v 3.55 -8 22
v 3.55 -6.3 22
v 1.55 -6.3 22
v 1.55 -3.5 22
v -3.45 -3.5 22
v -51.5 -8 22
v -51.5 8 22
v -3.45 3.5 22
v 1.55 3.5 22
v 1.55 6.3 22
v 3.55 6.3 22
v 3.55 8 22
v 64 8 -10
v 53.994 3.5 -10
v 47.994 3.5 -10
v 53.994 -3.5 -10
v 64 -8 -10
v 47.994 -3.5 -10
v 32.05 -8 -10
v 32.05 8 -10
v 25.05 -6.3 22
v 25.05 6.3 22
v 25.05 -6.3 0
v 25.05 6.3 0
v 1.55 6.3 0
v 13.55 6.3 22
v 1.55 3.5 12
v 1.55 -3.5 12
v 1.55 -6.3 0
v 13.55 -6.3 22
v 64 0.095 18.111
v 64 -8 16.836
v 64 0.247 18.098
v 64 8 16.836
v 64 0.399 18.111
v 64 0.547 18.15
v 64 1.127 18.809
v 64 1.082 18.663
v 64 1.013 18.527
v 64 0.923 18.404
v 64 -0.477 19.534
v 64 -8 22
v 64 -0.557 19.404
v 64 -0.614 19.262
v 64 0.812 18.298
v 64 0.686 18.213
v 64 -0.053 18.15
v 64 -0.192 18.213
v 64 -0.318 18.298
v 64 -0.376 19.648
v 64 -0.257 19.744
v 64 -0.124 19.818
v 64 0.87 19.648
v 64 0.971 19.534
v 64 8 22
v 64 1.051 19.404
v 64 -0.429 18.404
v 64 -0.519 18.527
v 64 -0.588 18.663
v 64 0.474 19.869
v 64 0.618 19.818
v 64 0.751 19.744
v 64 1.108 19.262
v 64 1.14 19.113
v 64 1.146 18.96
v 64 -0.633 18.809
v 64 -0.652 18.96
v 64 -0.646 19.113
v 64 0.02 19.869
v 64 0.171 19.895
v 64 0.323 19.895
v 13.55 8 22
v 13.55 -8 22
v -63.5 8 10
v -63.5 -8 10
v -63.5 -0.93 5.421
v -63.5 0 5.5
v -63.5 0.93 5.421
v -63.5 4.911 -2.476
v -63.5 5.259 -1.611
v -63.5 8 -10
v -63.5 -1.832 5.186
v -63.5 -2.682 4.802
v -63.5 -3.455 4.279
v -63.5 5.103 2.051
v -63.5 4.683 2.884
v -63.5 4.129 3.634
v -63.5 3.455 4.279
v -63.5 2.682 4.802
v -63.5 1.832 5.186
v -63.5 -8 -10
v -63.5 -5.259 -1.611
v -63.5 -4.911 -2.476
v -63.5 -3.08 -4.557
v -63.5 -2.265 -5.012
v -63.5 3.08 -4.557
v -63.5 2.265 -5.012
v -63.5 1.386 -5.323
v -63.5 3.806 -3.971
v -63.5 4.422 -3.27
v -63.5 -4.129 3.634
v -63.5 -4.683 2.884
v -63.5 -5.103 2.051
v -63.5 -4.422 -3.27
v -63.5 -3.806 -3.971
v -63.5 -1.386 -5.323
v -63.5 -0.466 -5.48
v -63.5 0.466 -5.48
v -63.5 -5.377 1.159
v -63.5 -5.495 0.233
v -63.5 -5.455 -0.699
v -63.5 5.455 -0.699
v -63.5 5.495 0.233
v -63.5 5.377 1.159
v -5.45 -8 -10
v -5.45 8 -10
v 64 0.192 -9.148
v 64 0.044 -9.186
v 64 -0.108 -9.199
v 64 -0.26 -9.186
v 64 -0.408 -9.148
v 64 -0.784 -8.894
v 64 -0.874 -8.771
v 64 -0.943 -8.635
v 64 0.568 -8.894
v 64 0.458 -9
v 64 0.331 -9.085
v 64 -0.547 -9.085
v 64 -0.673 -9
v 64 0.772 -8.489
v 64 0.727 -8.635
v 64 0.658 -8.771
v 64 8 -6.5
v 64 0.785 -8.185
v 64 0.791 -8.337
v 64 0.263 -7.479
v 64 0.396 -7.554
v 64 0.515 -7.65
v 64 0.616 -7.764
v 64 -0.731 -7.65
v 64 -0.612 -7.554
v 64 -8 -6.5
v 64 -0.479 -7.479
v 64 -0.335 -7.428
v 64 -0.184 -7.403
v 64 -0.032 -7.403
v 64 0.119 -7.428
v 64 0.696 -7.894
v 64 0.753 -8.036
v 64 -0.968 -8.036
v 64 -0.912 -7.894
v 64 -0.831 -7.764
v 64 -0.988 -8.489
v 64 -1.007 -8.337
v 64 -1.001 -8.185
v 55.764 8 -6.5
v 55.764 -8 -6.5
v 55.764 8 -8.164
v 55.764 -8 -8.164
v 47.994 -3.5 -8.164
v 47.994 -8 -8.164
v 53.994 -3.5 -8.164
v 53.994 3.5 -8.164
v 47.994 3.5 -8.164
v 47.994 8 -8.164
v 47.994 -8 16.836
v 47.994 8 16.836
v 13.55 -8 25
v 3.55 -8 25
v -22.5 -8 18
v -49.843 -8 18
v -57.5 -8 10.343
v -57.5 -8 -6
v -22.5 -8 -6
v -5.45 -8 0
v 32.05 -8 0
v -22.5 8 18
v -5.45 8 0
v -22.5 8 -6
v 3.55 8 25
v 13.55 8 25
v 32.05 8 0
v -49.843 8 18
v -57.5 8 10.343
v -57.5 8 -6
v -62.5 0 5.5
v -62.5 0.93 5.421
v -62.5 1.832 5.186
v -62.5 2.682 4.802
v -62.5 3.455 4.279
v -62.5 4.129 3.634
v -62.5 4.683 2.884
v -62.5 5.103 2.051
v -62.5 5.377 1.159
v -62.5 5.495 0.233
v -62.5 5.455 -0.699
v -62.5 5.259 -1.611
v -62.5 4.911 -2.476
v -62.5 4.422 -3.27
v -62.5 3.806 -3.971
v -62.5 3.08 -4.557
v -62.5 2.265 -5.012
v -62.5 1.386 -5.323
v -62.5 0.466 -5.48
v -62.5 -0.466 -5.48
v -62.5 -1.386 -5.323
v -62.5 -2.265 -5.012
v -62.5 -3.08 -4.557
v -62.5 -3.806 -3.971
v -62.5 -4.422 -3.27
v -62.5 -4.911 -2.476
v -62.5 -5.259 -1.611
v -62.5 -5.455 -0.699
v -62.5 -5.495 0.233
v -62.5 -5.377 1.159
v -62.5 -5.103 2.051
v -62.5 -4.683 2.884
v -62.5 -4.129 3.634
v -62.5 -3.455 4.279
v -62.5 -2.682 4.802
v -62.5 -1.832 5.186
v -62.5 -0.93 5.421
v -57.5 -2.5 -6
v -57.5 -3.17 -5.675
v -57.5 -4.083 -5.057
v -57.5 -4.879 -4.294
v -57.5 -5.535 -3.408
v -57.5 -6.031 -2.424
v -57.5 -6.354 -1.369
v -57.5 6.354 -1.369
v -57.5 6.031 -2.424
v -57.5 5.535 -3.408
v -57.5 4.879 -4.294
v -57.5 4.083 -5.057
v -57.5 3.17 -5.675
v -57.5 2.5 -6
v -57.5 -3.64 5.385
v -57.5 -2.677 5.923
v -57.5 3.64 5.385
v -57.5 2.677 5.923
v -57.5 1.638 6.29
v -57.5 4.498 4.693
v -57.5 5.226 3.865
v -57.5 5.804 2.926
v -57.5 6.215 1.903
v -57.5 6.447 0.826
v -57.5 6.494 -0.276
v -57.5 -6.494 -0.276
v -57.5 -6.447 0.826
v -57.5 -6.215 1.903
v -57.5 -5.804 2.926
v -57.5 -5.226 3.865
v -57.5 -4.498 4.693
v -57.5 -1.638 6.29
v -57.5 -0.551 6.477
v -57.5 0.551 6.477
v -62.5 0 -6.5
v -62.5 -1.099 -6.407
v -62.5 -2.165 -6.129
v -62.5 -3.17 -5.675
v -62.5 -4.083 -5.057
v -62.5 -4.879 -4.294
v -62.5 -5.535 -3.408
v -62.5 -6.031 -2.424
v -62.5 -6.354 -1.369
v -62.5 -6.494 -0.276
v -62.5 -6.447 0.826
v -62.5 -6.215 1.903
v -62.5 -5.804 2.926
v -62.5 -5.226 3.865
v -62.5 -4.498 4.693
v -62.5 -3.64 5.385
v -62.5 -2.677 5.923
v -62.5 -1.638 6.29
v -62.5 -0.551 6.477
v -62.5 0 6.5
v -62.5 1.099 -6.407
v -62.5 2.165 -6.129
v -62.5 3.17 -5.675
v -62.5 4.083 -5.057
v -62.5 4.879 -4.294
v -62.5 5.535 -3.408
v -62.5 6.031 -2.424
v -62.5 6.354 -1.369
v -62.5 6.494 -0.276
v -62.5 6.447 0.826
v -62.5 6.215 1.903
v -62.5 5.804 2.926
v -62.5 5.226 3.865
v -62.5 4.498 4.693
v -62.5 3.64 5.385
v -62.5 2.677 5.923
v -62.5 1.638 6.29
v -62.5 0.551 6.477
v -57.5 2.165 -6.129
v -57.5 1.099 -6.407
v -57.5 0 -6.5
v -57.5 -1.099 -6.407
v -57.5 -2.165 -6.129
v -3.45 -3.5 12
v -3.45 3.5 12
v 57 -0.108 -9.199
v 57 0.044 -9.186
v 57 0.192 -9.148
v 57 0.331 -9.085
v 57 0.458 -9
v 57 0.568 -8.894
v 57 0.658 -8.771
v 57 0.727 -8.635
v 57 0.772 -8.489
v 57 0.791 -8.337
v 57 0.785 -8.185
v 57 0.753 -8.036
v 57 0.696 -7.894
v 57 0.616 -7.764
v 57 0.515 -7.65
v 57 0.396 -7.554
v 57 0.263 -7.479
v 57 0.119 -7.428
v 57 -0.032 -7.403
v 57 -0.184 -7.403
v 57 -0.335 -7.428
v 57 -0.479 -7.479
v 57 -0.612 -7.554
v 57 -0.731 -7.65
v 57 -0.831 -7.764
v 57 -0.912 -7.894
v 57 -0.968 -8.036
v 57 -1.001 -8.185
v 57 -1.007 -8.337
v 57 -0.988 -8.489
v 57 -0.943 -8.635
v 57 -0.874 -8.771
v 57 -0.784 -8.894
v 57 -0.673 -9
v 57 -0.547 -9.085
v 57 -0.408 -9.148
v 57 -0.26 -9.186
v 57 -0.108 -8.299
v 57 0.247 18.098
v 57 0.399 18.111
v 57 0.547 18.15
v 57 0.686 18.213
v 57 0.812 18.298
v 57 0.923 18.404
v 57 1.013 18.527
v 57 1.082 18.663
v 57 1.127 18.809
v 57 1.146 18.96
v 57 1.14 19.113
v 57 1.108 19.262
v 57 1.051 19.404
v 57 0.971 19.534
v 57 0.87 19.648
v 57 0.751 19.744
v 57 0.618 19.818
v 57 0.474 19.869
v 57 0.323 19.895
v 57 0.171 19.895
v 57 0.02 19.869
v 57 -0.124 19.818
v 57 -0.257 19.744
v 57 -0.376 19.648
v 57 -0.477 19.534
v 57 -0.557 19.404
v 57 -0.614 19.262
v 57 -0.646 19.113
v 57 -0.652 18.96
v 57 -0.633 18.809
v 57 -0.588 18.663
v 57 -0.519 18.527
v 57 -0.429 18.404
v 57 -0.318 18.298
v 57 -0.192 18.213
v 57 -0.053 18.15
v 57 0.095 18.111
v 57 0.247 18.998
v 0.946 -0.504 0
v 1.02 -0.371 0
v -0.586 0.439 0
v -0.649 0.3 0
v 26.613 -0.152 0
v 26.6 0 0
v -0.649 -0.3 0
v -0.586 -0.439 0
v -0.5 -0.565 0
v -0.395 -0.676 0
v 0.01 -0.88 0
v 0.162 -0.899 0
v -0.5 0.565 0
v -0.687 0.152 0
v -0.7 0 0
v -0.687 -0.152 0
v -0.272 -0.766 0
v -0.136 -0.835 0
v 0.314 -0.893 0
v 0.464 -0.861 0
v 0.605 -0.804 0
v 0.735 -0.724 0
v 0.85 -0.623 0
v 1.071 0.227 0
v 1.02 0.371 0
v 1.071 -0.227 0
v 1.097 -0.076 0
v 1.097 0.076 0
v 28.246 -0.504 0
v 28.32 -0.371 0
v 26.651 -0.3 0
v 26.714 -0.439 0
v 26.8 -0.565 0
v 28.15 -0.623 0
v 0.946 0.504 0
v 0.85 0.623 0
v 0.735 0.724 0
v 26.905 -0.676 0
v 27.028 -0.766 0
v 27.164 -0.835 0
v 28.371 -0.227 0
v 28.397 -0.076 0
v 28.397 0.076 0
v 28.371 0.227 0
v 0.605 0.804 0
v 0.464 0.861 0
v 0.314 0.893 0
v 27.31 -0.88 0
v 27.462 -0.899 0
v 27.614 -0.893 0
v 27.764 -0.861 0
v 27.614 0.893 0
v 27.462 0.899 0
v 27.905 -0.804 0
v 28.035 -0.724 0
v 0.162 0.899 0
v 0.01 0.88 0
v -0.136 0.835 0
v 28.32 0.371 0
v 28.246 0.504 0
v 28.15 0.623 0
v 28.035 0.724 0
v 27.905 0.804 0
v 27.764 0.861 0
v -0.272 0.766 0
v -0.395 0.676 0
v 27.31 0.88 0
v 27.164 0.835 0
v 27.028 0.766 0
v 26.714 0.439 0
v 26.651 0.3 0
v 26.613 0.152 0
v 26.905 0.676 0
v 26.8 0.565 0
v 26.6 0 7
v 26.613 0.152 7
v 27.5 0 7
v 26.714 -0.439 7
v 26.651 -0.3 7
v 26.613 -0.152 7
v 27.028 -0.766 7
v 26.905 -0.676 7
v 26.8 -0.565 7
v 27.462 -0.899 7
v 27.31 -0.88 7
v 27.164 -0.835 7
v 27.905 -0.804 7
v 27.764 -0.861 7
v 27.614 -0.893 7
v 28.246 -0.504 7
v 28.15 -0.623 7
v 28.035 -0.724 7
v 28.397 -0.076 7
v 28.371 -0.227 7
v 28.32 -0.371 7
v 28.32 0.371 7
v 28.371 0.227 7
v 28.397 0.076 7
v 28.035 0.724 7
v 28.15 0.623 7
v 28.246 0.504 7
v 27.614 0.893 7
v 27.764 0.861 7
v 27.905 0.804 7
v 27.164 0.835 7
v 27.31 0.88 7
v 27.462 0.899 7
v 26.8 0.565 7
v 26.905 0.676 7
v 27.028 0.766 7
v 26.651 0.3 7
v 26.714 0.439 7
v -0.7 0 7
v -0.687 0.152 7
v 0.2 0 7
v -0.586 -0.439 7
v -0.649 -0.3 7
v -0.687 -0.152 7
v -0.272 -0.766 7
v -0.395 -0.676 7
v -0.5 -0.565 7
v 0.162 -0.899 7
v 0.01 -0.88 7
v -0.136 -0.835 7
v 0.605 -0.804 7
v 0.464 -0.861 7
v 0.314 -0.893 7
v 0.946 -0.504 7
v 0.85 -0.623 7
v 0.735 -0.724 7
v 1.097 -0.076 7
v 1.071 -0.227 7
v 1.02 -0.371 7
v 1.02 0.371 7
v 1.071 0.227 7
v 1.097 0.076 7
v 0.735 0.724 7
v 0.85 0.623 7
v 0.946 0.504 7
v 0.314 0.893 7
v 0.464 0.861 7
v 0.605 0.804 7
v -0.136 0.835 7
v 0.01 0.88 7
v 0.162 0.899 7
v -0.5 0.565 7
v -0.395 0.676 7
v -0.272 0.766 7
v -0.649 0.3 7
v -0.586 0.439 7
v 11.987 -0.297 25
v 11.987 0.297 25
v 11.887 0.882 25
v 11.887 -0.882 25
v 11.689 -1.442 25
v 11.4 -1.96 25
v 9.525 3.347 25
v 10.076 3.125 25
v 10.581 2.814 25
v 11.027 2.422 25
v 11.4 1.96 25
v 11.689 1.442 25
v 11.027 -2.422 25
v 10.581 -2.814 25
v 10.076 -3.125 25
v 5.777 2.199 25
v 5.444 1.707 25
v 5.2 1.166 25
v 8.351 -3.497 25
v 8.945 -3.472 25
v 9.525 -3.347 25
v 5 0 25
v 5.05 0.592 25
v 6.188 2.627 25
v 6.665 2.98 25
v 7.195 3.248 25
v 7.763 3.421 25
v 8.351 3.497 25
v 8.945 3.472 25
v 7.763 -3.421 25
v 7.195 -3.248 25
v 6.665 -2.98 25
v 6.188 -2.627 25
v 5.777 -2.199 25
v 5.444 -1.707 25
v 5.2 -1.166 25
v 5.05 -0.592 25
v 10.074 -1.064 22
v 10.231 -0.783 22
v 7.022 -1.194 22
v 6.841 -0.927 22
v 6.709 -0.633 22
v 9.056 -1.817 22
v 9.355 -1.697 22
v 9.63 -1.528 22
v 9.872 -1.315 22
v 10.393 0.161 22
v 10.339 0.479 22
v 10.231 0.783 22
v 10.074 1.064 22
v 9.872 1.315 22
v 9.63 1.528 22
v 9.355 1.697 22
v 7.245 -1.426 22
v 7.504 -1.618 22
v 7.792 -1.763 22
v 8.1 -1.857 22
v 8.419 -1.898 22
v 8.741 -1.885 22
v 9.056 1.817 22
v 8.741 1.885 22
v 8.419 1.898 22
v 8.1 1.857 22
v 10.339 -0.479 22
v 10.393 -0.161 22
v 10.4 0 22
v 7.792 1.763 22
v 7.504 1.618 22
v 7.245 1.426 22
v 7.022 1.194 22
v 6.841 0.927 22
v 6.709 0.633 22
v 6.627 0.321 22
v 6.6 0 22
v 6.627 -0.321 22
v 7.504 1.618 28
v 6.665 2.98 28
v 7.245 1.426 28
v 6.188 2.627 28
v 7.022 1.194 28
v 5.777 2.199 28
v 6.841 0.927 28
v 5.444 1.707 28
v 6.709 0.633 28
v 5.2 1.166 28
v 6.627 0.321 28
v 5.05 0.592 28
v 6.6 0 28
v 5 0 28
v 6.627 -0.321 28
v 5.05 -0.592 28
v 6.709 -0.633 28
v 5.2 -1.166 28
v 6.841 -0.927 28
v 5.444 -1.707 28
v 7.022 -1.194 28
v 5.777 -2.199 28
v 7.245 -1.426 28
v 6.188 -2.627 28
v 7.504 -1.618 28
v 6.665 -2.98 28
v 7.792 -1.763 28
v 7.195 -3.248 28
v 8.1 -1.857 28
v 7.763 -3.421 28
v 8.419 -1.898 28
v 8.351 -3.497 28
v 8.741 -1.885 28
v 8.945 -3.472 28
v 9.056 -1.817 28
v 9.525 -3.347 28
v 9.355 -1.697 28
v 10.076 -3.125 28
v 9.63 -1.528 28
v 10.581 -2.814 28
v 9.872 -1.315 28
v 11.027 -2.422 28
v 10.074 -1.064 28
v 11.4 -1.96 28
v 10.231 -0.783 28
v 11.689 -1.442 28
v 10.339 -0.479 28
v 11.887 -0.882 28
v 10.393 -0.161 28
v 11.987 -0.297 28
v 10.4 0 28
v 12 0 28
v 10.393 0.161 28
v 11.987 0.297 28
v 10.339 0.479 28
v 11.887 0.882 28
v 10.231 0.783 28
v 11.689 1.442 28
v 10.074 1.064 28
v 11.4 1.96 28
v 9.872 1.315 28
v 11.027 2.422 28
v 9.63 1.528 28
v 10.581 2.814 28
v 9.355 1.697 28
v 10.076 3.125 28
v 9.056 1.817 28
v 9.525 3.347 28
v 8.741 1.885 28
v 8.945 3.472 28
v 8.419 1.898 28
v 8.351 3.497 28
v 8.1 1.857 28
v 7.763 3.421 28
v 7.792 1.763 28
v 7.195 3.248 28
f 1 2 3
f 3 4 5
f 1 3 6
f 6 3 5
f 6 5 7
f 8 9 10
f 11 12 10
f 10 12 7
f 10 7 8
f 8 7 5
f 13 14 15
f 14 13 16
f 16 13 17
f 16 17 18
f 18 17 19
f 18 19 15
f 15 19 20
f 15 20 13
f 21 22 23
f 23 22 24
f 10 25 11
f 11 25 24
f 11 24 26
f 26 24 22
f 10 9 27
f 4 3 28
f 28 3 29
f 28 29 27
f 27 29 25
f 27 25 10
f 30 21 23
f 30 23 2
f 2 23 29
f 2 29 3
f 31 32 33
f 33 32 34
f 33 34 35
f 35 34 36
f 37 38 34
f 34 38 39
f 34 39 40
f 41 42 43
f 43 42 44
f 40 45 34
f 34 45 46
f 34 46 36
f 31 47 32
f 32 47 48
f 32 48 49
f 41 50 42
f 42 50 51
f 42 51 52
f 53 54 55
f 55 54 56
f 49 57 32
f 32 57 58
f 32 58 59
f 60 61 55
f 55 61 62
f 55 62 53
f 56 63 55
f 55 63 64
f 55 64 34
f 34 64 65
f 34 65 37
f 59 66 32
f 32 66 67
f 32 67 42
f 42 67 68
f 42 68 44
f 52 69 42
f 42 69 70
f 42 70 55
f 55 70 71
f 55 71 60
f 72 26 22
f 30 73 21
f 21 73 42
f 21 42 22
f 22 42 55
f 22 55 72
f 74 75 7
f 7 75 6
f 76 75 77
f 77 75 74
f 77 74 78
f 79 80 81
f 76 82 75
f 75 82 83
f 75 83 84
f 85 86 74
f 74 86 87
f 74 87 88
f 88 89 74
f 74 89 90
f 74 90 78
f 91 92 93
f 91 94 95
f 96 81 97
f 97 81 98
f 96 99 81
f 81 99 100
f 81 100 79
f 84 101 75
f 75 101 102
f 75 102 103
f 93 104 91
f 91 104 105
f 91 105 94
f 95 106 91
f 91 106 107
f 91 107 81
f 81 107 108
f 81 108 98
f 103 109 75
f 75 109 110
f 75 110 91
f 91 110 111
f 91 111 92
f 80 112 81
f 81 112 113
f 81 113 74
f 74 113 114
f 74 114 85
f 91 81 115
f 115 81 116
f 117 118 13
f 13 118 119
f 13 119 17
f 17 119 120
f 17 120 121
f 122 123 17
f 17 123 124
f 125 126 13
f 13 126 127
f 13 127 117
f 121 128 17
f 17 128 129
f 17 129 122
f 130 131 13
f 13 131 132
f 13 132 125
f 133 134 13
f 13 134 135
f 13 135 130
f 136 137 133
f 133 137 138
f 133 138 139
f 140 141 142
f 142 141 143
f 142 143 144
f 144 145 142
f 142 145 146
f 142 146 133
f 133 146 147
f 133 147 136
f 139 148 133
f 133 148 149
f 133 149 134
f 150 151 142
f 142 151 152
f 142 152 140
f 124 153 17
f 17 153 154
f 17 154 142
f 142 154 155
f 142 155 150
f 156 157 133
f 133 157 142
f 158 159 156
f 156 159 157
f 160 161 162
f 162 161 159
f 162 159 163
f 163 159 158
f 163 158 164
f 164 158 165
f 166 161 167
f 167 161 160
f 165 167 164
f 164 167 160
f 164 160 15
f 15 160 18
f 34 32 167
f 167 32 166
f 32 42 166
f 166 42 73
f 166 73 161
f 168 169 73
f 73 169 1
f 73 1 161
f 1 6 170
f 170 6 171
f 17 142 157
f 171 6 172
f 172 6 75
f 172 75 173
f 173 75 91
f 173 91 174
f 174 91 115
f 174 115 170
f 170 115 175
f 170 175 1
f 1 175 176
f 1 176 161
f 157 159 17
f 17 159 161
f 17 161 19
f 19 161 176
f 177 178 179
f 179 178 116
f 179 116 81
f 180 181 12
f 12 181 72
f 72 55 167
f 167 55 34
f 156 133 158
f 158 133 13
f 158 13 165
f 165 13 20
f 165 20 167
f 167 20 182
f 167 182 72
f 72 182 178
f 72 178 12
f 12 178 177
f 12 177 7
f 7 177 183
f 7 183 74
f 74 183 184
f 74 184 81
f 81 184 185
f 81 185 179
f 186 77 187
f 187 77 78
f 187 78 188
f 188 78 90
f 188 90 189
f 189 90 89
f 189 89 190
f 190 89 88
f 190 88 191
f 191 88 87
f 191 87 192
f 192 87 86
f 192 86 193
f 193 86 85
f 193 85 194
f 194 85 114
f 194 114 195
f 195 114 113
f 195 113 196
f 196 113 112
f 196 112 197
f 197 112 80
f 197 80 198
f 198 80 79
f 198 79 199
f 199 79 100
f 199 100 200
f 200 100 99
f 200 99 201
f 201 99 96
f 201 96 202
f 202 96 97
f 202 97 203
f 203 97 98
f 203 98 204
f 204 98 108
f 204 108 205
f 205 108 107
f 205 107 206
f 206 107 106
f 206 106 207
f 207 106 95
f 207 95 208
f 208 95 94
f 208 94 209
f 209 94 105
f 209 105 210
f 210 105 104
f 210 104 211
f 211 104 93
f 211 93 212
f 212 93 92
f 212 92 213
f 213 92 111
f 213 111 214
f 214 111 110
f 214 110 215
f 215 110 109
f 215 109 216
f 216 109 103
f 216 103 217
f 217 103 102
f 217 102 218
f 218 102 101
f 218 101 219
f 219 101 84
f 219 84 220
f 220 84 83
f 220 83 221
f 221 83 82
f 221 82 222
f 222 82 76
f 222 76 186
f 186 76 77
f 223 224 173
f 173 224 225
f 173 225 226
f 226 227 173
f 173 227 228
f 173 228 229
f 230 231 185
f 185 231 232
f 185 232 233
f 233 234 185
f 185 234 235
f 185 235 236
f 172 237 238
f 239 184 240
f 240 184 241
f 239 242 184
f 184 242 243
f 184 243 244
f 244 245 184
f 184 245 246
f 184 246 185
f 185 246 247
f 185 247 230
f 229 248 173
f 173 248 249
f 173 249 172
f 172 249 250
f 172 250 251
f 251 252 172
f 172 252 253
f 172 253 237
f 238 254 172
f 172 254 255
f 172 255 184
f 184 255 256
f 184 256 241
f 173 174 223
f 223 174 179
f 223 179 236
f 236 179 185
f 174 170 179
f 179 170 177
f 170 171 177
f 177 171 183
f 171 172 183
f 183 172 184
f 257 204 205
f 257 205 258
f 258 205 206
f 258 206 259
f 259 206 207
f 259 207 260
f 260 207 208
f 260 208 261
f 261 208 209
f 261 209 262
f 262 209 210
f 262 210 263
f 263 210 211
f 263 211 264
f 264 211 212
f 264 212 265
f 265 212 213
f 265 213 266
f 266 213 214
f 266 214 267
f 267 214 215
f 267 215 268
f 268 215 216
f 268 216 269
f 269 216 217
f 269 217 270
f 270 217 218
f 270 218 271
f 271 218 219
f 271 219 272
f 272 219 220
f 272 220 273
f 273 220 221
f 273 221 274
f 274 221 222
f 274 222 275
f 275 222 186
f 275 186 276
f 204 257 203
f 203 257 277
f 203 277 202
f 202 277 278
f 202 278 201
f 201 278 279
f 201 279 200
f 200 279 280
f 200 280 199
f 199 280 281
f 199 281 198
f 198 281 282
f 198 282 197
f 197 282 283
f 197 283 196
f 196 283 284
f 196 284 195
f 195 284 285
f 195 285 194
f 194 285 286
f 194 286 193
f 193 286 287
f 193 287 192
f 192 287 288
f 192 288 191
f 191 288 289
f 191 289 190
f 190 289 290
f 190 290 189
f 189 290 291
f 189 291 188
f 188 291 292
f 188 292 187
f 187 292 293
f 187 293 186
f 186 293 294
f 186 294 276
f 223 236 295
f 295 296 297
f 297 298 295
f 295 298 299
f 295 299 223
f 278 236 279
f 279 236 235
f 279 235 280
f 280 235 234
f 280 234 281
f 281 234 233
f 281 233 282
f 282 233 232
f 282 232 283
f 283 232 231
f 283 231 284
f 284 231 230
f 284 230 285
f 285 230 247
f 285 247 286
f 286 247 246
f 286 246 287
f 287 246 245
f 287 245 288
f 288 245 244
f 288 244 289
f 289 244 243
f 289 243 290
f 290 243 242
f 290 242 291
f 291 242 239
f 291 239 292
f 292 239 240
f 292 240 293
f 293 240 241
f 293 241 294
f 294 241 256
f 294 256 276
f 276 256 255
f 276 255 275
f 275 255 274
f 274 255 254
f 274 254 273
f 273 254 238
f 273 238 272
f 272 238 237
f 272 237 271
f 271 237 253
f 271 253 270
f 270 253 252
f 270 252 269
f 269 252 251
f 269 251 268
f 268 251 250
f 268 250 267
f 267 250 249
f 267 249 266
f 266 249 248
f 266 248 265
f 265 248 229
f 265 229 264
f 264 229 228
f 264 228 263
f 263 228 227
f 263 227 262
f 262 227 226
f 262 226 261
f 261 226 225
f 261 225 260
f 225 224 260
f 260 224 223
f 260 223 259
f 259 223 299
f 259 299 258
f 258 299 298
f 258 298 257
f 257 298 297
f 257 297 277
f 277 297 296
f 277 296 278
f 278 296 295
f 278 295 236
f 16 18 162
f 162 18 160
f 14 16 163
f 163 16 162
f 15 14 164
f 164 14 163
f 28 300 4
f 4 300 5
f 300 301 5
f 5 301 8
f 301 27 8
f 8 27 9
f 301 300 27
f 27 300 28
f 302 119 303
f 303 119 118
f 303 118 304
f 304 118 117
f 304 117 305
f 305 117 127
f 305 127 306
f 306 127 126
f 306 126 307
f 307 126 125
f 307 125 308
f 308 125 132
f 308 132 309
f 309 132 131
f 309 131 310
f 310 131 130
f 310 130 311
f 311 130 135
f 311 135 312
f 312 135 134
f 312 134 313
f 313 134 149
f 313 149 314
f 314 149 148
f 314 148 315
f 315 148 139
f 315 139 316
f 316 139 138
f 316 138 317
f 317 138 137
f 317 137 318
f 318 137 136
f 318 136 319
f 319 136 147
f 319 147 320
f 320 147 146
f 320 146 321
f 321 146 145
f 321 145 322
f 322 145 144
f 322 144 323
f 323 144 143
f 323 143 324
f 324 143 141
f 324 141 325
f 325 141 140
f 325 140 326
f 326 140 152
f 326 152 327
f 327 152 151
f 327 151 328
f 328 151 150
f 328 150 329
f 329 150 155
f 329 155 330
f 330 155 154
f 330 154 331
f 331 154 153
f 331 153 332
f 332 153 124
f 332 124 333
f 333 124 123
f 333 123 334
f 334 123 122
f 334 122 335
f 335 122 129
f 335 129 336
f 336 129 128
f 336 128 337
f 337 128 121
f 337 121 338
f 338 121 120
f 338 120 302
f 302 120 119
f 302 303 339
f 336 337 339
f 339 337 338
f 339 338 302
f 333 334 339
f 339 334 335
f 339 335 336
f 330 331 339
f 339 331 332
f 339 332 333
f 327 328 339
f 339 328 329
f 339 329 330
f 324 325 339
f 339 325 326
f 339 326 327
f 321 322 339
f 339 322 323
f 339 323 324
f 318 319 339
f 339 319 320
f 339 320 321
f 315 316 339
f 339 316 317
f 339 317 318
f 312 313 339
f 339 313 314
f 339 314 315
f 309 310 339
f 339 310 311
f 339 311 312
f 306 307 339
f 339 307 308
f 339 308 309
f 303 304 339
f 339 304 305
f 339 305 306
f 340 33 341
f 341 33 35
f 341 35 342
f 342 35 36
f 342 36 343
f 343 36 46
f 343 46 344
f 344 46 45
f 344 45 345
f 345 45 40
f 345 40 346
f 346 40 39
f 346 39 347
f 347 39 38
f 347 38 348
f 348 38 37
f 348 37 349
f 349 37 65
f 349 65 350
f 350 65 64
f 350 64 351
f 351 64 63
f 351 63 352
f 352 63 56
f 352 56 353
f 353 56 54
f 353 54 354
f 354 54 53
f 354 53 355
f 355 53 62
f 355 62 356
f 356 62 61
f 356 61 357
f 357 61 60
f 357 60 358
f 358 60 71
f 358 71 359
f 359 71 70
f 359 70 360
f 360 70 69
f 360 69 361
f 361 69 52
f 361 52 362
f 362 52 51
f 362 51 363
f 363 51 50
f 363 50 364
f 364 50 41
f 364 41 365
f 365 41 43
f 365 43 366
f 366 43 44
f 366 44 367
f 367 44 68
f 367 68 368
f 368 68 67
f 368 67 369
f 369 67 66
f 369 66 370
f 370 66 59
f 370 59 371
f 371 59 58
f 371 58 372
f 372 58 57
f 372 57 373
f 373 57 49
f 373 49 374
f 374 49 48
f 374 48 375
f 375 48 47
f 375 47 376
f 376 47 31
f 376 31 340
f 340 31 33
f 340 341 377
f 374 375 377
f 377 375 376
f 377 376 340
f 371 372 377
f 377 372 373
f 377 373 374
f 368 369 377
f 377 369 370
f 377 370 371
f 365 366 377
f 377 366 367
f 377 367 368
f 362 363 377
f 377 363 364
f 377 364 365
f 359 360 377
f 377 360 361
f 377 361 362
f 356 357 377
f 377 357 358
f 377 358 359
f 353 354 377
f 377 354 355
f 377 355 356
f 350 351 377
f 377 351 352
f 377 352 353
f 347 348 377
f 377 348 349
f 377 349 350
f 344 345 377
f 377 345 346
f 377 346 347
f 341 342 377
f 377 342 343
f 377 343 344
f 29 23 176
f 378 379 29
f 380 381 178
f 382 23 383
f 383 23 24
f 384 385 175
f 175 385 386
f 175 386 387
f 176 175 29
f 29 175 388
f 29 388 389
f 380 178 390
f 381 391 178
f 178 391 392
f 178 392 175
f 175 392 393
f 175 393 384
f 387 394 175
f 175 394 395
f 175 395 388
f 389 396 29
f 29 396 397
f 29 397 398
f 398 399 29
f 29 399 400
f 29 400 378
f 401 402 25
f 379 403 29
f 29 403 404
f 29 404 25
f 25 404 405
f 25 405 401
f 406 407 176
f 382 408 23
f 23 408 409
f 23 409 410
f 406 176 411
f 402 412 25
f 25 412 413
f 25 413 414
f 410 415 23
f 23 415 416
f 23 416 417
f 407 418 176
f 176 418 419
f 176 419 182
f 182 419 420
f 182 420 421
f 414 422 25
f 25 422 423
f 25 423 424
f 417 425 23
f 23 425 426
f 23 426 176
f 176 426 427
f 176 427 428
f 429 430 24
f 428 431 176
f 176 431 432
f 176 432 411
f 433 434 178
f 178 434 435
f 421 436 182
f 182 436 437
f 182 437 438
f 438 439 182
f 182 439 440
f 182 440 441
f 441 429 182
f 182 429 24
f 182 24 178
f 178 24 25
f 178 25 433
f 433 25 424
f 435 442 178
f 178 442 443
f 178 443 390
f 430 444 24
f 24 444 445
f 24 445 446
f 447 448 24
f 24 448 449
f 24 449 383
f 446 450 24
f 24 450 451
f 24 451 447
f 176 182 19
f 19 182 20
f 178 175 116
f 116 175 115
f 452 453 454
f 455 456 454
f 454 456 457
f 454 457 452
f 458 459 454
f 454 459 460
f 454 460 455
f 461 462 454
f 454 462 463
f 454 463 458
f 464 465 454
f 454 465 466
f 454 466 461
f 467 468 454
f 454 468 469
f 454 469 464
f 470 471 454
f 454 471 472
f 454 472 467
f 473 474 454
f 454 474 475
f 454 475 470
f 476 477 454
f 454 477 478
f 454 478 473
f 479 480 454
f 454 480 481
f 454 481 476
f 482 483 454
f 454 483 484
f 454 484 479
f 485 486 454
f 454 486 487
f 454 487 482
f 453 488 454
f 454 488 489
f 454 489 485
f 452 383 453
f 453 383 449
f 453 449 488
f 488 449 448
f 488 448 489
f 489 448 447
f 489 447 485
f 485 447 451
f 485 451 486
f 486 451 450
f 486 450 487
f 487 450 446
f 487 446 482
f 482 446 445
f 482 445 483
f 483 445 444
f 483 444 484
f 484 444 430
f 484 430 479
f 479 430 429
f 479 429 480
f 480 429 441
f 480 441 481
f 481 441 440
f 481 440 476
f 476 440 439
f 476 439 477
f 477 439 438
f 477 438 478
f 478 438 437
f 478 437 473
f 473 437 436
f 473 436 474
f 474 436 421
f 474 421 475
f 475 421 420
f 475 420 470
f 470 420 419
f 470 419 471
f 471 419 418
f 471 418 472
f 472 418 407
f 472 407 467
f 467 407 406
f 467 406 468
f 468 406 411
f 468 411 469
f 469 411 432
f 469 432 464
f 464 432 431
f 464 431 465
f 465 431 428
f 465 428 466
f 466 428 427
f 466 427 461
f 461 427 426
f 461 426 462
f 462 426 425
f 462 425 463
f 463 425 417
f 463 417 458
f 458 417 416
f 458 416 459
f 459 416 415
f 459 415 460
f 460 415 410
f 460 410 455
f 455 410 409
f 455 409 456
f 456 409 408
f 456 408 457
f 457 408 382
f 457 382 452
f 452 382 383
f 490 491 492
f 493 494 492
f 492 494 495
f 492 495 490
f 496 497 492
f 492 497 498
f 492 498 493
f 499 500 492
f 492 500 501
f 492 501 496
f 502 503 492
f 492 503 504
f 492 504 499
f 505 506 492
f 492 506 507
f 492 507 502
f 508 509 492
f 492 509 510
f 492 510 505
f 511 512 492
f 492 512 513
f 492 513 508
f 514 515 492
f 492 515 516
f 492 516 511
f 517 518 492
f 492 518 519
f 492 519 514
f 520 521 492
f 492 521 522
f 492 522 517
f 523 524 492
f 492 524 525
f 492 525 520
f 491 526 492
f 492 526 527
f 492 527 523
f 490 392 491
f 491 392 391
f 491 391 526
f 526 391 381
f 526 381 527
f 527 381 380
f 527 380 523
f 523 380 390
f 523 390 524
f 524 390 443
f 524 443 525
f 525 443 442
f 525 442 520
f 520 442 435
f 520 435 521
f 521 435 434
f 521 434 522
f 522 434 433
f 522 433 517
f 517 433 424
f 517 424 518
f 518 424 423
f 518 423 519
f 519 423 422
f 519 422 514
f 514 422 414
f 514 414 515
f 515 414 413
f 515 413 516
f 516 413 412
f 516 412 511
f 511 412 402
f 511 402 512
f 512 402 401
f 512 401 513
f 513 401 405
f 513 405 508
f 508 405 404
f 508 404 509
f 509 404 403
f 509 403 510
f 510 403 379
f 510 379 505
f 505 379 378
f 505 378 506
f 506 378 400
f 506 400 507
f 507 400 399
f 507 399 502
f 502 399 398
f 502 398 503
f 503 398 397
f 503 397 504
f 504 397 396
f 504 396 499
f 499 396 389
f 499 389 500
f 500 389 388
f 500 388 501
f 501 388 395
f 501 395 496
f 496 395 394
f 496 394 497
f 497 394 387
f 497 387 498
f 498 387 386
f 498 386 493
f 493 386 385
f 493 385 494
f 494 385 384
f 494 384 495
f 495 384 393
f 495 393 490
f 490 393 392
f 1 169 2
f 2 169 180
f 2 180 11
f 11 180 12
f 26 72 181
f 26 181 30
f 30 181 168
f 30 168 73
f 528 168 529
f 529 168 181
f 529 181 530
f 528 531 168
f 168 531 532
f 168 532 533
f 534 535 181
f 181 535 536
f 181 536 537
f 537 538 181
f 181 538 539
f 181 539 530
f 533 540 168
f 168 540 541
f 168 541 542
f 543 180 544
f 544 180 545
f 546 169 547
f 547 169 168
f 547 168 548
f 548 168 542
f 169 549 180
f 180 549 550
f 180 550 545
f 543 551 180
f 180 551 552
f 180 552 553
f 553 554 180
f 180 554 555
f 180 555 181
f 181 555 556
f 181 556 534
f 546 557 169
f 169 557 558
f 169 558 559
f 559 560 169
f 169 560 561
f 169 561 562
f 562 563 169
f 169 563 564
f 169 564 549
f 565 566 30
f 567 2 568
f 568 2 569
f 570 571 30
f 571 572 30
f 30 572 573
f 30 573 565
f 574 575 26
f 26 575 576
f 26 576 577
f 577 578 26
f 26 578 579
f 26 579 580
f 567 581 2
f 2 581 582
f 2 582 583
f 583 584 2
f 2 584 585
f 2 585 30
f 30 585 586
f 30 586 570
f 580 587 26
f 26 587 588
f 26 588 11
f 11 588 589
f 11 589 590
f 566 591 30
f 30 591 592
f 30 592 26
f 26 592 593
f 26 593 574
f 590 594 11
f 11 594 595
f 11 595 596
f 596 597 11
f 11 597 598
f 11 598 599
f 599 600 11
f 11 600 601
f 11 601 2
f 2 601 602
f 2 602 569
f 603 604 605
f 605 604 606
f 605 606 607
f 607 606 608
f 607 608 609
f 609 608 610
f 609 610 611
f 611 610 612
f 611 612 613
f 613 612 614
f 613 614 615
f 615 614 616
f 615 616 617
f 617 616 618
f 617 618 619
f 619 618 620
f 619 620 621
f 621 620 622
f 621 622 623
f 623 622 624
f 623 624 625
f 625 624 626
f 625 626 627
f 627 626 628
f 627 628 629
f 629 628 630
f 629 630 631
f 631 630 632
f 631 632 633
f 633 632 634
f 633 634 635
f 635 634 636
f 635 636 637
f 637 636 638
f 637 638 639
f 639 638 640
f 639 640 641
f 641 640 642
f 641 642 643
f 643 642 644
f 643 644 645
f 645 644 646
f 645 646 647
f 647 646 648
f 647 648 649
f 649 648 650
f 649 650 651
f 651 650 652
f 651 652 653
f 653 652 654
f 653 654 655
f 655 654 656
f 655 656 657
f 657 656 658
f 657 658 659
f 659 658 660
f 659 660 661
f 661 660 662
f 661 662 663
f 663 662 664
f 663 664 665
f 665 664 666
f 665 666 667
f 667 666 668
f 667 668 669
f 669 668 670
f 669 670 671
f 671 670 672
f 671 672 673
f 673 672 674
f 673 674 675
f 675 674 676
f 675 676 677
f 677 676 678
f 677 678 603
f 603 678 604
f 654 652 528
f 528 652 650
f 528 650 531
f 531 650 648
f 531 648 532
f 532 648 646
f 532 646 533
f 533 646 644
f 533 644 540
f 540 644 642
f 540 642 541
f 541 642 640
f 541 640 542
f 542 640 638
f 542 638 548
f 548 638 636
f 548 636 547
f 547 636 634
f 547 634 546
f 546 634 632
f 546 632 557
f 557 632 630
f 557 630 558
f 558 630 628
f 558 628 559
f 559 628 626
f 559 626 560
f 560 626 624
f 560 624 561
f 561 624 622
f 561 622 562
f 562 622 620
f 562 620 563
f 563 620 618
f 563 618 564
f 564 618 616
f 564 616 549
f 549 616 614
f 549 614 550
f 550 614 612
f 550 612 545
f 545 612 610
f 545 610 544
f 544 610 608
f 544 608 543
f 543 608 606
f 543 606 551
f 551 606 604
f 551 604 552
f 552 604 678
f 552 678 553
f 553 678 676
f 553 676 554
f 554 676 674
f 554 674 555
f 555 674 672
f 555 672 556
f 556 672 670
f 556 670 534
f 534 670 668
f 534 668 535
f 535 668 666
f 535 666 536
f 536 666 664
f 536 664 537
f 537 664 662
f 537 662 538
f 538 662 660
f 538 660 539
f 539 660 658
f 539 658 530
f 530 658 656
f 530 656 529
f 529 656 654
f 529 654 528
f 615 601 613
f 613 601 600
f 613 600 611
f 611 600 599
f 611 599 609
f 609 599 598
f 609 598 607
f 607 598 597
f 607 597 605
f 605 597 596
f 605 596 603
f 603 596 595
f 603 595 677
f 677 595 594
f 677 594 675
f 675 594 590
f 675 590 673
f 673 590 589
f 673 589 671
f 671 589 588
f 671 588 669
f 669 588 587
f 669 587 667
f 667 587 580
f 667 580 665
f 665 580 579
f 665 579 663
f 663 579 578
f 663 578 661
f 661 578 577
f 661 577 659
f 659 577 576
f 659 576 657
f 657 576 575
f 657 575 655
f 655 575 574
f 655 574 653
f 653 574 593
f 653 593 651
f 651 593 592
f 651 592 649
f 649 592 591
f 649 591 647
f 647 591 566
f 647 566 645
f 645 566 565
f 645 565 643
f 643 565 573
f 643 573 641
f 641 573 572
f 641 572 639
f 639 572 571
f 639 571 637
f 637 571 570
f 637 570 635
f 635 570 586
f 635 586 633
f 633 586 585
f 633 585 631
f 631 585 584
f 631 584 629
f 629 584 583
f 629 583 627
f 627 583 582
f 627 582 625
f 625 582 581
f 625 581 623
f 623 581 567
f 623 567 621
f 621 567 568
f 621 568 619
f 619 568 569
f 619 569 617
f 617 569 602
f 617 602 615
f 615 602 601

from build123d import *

# Parameters (mm, degrees)
BOSS_EXTRUDE1_DEPTH      = 8
BOSS_EXTRUDE1_DEPTH_BACK = 8
SKETCH2_R                = 5.5
CUT_EXTRUDE1_DEPTH       = 8
CUT_EXTRUDE2_DEPTH       = 16
SKETCH4_R                = 6.5
CUT_EXTRUDE3_DEPTH       = 5
SKETCH5_W                = 23.5
SKETCH5_H                = 12.6
CUT_EXTRUDE4_DEPTH       = 33
SKETCH6_R                = 0.9
CUT_EXTRUDE5_DEPTH       = 17
SKETCH7_W                = 6
SKETCH7_H                = 7
CUT_EXTRUDE6_DEPTH       = 7
SKETCH8_W                = 5
SKETCH8_H                = 7
CUT_EXTRUDE7_DEPTH       = 10
SKETCH9_R                = 0.899999999
CUT_EXTRUDE8_DEPTH       = 7
SKETCH10_W               = 37.5
SKETCH10_H               = 16
CUT_EXTRUDE9_DEPTH       = 10
SKETCH11_W               = 10
SKETCH11_H               = 16
BOSS_EXTRUDE2_DEPTH      = 3
SKETCH12_R               = 3.5
SKETCH12_R_2             = 1.9
BOSS_EXTRUDE3_DEPTH      = 3
SKETCH13_R               = 1.9
CUT_EXTRUDE10_DEPTH      = 3


with BuildPart() as part:
    # Sketch1 → Boss-Extrude1 (new body, two sides)
    with BuildSketch(Plane(origin=(0, 0, 0), x_dir=(1, 0, 0), z_dir=(0, 1, 0))) as boss_extrude1_sk:
        Polygon((64, -16.835969506), (47.993540801, -16.835969506), (47.993540801, 8.164030494), (55.763890835, 8.164030494), (55.763890835, 6.5), (64, 6.5), (64, 10), (-63.5, 10), (-63.5, -10), (-51.5, -22), (64, -22), align=None)
    extrude(amount=BOSS_EXTRUDE1_DEPTH)
    extrude(boss_extrude1_sk.sketch, amount=-BOSS_EXTRUDE1_DEPTH_BACK)

    # Sketch2 → Cut-Extrude1 (cut)
    with BuildSketch(Plane.ZY.offset(63.5)):
        Circle(SKETCH2_R)
    extrude(amount=-CUT_EXTRUDE1_DEPTH, mode=Mode.SUBTRACT)

    # Sketch3 → Cut-Extrude2 (cut)
    with BuildSketch(Plane(origin=(0, 8, 0), x_dir=(1, 0, 0), z_dir=(0, 1, 0))):
        Polygon((-57.5, 6), (-22.5, 6), (-22.5, -18), (-49.843145751, -18), (-57.5, -10.343145751), align=None)
    extrude(amount=-CUT_EXTRUDE2_DEPTH, mode=Mode.SUBTRACT)

    # Sketch4 → Cut-Extrude3 (cut)
    with BuildSketch(Plane(origin=(-57.5, 0, 0), x_dir=(0, 0, -1), z_dir=(1, 0, 0))):
        Circle(SKETCH4_R)
    extrude(amount=-CUT_EXTRUDE3_DEPTH, mode=Mode.SUBTRACT)

    # Sketch5 → Cut-Extrude4 (cut, through all)
    with BuildSketch(Plane(origin=(0, 0, -10), x_dir=(-1, 0, 0), z_dir=(0, 0, -1))):
        with Locations((-13.3, 0)):
            Rectangle(SKETCH5_W, SKETCH5_H)
    extrude(amount=-CUT_EXTRUDE4_DEPTH, mode=Mode.SUBTRACT)

    # Sketch6 → Cut-Extrude5 (cut)
    with BuildSketch(Plane(origin=(0, 0, -10), x_dir=(-1, 0, 0), z_dir=(0, 0, -1))):
        with Locations((-0.2, 0)):
            Circle(SKETCH6_R)
        with Locations((-27.5, 0)):
            Circle(SKETCH6_R)
    extrude(amount=-CUT_EXTRUDE5_DEPTH, mode=Mode.SUBTRACT)

    # Sketch7 → Cut-Extrude6 (cut)
    with BuildSketch(Plane(origin=(0, 0, -10), x_dir=(-1, 0, 0), z_dir=(0, 0, -1))):
        with Locations((-50.993540801, 0)):
            Rectangle(SKETCH7_W, SKETCH7_H)
    extrude(amount=-CUT_EXTRUDE6_DEPTH, mode=Mode.SUBTRACT)

    # Sketch8 → Cut-Extrude7 (cut)
    with BuildSketch(Plane.XY.offset(22)):
        with Locations((-0.95, 0)):
            Rectangle(SKETCH8_W, SKETCH8_H)
    extrude(amount=-CUT_EXTRUDE7_DEPTH, mode=Mode.SUBTRACT)

    # Sketch9 → Cut-Extrude8 (cut)
    with BuildSketch(Plane(origin=(64, 0, 0), x_dir=(0, 0, -1), z_dir=(1, 0, 0))):
        with Locations((-18.998394534, 0.246992199)):
            Circle(SKETCH9_R)
        with Locations((8.299298665, -0.107896588)):
            Circle(SKETCH9_R)
    extrude(amount=-CUT_EXTRUDE8_DEPTH, mode=Mode.SUBTRACT)

    # Sketch10 → Cut-Extrude9 (cut)
    with BuildSketch(Plane(origin=(0, 0, -10), x_dir=(-1, 0, 0), z_dir=(0, 0, -1))):
        with Locations((-13.3, 0)):
            Rectangle(SKETCH10_W, SKETCH10_H)
    extrude(amount=-CUT_EXTRUDE9_DEPTH, mode=Mode.SUBTRACT)

    # Sketch11 → Boss-Extrude2 (add)
    with BuildSketch(Plane.XY.offset(22)):
        with Locations((8.55, 0)):
            Rectangle(SKETCH11_W, SKETCH11_H)
    extrude(amount=BOSS_EXTRUDE2_DEPTH)

    # Sketch12 → Boss-Extrude3 (add)
    with BuildSketch(Plane.XY.offset(25)):
        with Locations((8.499999912, 0)):
            Circle(SKETCH12_R)
        with Locations((8.499999912, 0)):
            Circle(SKETCH12_R_2, mode=Mode.SUBTRACT)
    extrude(amount=BOSS_EXTRUDE3_DEPTH)

    # Sketch13 → Cut-Extrude10 (cut)
    with BuildSketch(Plane.XY.offset(25)):
        with Locations((8.499999912, 0)):
            Circle(SKETCH13_R)
    extrude(amount=-CUT_EXTRUDE10_DEPTH, mode=Mode.SUBTRACT)


solid = part.part
